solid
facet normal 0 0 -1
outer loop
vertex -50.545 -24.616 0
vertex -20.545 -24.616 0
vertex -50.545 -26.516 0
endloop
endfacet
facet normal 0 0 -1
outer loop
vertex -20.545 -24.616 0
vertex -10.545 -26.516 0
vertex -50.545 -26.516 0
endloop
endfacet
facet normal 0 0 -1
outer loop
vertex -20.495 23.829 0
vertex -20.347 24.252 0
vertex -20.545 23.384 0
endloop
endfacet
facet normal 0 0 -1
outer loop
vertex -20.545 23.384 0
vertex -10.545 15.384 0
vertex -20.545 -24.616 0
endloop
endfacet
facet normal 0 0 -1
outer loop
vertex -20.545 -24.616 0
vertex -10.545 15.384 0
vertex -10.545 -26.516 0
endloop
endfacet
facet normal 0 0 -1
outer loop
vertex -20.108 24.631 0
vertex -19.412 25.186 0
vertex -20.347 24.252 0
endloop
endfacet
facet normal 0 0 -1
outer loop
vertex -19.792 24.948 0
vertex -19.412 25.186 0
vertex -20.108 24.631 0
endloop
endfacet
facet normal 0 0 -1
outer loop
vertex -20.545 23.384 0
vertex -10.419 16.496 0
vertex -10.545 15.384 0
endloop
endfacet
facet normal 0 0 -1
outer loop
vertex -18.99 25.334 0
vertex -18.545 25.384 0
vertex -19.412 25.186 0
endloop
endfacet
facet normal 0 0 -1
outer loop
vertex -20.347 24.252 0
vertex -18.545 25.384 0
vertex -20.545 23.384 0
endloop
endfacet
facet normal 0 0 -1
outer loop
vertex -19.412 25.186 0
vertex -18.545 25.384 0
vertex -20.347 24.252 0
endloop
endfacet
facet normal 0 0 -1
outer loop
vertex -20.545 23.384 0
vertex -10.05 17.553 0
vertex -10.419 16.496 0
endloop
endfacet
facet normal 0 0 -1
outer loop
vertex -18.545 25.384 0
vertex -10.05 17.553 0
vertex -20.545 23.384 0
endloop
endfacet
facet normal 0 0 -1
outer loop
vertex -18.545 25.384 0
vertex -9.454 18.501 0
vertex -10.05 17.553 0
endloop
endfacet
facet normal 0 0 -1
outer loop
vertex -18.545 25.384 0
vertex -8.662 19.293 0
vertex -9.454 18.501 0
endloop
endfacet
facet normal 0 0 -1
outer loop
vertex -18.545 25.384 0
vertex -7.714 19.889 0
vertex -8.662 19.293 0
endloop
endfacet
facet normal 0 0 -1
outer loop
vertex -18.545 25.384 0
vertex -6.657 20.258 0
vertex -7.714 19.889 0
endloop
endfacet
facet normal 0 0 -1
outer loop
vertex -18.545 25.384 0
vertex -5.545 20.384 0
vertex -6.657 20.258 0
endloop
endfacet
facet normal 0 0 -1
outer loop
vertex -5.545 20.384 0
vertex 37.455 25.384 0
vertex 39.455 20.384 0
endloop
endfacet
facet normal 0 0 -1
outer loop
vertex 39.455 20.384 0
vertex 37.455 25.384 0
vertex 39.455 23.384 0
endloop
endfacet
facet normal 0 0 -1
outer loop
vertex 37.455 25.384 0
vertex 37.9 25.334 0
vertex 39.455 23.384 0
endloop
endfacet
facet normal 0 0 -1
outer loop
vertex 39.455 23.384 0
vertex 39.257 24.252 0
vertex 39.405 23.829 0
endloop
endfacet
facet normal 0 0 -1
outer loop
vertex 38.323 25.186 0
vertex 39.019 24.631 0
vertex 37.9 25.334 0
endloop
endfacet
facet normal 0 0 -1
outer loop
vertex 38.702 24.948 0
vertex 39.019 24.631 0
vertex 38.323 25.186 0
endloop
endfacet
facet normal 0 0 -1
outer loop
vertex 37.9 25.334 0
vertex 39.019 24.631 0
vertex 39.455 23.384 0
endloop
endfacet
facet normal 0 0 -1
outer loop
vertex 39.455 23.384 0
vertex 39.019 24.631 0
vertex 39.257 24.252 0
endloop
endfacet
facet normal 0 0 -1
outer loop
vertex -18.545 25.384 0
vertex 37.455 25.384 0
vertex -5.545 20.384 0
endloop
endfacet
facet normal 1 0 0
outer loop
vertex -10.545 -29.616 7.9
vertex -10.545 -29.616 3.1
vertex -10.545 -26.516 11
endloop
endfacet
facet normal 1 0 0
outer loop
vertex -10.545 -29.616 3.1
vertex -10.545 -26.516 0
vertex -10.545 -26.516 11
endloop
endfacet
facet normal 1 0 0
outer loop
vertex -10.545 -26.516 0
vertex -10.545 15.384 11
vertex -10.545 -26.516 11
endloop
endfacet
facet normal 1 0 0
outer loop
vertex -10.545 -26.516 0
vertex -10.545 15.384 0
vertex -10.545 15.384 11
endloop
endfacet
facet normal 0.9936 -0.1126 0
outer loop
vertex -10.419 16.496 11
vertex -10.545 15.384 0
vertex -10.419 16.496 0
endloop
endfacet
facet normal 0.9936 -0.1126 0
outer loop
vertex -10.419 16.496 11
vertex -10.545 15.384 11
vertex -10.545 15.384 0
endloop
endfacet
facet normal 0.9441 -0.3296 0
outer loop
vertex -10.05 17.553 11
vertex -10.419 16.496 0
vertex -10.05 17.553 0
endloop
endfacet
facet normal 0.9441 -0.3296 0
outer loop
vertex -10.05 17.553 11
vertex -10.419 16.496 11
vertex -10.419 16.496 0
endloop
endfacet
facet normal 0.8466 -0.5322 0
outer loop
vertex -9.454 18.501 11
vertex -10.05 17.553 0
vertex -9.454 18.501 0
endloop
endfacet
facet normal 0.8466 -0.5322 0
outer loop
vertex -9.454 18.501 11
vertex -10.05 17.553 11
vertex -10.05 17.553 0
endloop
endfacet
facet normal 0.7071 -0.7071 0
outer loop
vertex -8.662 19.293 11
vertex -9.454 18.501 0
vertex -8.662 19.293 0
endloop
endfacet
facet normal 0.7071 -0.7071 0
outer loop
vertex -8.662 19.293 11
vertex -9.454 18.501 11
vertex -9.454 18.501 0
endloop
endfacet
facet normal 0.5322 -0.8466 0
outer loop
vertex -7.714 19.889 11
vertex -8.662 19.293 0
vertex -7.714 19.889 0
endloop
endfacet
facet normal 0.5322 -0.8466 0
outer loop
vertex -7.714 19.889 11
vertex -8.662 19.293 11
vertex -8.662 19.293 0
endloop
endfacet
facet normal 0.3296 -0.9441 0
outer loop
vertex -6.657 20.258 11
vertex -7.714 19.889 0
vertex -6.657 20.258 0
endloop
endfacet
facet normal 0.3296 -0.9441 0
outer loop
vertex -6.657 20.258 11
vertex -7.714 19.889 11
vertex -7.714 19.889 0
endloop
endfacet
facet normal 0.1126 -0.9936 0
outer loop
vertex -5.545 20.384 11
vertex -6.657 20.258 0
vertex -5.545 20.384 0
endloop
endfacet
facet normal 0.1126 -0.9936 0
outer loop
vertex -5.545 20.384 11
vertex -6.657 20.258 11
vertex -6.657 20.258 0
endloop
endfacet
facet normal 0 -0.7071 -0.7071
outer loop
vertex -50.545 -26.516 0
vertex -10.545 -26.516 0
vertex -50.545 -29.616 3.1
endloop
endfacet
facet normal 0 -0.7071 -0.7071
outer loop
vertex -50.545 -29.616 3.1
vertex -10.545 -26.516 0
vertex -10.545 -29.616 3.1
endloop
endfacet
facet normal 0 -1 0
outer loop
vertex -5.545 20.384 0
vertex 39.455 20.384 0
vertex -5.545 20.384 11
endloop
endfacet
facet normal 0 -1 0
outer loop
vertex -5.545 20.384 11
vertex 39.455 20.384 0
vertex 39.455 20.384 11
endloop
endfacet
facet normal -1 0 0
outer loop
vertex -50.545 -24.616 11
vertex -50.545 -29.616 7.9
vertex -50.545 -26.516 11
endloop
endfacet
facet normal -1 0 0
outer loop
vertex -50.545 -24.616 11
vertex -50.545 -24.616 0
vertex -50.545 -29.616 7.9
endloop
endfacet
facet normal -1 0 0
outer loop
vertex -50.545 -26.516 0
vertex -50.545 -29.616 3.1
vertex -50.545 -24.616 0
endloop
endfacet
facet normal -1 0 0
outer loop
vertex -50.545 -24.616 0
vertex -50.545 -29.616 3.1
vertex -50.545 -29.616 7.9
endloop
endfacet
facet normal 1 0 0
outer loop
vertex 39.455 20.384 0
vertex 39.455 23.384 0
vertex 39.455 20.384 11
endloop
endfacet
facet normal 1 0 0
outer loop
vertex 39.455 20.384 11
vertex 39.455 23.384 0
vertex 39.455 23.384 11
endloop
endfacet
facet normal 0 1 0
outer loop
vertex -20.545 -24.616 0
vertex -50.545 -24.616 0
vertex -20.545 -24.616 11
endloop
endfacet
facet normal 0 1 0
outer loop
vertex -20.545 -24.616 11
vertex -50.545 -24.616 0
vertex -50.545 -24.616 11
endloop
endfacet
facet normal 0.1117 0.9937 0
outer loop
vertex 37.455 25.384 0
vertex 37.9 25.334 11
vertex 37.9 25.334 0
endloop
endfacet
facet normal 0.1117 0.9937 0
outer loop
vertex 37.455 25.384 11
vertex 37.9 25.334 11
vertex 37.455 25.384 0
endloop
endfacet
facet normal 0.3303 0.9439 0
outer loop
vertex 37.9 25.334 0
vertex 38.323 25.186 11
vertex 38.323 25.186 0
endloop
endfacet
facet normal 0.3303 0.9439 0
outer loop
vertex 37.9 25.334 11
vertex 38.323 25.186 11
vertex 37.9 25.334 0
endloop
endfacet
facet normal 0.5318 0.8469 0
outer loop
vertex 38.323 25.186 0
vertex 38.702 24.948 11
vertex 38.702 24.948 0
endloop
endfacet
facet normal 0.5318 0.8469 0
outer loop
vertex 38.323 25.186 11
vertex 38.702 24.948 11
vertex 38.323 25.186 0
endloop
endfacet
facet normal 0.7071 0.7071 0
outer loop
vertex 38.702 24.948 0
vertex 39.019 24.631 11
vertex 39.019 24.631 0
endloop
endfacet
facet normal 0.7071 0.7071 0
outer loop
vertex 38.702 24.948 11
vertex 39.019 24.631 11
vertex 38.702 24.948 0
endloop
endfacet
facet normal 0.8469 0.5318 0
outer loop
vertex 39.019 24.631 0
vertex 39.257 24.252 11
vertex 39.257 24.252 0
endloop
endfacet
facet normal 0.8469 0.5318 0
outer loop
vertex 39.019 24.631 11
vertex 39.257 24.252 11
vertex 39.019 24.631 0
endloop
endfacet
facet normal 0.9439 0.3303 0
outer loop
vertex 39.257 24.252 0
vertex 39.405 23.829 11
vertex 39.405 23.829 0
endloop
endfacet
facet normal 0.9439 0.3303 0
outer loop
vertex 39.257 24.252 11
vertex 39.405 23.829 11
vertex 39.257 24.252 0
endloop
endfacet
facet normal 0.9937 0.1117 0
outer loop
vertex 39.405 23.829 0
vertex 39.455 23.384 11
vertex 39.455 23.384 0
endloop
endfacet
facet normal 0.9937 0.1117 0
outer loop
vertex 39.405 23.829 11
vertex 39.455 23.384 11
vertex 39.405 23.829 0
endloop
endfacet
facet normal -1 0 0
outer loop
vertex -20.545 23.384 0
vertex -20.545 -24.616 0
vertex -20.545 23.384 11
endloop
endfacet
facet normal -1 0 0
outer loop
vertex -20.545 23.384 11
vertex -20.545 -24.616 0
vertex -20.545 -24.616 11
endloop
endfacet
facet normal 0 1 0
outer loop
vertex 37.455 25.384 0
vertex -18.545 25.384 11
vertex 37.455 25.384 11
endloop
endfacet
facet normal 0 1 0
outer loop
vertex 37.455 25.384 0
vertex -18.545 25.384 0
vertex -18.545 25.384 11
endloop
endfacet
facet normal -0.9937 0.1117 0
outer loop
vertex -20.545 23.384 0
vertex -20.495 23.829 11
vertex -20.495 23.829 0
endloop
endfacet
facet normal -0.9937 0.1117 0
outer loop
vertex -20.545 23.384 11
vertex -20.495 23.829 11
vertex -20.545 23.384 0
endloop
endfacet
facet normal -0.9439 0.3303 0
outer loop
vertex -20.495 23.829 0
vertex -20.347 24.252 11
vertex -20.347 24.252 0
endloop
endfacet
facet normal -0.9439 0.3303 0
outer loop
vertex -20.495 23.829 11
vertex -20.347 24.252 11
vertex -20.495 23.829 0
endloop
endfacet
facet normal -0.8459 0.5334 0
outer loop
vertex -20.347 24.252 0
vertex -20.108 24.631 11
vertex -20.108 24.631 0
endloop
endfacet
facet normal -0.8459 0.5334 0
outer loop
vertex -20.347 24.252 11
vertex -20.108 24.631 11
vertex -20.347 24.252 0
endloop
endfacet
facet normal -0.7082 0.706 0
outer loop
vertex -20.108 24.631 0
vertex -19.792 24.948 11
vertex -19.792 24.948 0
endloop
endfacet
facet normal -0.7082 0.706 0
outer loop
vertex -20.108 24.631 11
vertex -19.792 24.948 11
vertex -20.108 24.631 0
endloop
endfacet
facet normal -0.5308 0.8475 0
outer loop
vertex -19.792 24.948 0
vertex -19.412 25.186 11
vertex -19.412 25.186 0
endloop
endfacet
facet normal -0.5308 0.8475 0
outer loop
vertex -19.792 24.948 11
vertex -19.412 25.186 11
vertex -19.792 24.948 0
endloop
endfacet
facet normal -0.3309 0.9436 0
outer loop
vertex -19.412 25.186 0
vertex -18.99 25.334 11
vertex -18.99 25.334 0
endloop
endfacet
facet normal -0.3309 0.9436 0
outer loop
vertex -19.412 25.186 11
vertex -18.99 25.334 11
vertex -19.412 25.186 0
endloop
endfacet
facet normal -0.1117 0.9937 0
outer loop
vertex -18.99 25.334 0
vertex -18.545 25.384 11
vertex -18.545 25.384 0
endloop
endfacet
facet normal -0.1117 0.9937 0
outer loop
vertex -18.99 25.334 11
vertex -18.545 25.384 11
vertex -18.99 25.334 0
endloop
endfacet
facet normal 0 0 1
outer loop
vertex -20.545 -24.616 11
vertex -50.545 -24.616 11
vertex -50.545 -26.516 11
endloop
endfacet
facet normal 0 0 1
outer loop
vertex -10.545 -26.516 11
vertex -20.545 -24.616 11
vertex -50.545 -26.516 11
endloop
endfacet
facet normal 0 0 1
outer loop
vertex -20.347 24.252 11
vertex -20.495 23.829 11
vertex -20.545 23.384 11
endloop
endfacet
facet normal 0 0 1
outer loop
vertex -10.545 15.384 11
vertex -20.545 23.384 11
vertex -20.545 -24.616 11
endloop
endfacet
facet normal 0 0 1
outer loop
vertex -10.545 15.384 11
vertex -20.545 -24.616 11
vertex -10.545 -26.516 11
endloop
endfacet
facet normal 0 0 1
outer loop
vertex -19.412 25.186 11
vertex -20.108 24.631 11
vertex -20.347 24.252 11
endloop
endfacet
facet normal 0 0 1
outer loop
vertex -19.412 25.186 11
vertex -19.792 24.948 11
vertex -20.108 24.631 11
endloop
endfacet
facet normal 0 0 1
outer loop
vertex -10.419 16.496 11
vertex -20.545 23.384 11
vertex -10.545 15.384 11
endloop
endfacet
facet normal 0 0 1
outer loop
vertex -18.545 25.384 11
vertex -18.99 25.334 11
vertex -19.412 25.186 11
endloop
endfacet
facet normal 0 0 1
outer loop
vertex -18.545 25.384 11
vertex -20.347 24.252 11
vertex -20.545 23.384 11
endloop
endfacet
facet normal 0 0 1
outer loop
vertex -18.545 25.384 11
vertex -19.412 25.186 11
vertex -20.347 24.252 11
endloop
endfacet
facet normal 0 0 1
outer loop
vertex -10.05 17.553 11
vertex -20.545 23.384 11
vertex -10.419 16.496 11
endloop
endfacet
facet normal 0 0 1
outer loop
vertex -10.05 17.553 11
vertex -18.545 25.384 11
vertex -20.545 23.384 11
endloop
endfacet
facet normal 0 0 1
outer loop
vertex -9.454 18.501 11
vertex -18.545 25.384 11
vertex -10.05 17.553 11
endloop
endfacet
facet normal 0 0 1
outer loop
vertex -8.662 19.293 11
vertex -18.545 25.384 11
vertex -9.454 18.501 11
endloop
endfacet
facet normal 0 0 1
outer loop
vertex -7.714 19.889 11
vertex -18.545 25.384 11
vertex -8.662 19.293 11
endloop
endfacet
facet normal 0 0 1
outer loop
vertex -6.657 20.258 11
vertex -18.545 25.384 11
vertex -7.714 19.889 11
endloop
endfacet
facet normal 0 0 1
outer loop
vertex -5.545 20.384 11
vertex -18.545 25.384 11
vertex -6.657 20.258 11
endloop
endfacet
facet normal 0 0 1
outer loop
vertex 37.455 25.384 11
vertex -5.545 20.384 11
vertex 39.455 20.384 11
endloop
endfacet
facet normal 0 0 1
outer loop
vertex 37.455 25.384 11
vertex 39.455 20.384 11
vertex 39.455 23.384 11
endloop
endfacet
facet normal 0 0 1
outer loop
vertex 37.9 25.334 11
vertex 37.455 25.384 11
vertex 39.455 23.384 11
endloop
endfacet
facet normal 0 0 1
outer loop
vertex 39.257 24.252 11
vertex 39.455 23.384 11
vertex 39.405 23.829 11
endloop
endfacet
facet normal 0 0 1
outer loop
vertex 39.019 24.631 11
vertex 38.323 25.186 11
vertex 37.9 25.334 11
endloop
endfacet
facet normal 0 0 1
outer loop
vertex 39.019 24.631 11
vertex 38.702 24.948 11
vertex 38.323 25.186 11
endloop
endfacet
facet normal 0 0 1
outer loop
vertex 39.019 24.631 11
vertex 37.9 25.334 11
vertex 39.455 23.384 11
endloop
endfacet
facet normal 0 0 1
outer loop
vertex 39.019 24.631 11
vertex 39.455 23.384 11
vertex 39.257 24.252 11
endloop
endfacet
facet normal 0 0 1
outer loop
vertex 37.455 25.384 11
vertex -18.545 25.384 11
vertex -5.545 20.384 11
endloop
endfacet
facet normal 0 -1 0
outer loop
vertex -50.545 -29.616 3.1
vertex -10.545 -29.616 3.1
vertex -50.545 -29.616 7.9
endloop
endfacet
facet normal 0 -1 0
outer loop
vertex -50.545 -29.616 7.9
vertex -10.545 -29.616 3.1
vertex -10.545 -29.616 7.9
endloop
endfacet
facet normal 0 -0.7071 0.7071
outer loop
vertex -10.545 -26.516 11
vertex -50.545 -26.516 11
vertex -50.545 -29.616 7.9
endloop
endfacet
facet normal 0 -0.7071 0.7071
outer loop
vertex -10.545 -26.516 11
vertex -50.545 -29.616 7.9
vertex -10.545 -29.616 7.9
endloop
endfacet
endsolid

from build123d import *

# Parameters (mm, degrees)
PAD_DEPTH    = 11
CHAMFER_SIZE = 3.1
FILLET_R     = 2
FILLET001_R  = 5


with BuildPart() as part:
    # Sketch → Pad (new body)
    with BuildSketch(Plane.XY):
        Polygon((-50.544724, -24.61614), (-50.544724, -29.61614), (-10.544724, -29.61614), (-10.544724, 20.38386), (39.455276, 20.38386), (39.455276, 25.38386), (-20.544724, 25.38386), (-20.544724, -24.61614), align=None)
    extrude(amount=PAD_DEPTH)

    # Chamfer
    chamfer_edges = [part.edges().sort_by_distance(p)[0] for p in [
        (-30.544724, -29.61614, 0),
        (-30.544724, -29.61614, 11),
    ]]
    chamfer(chamfer_edges, length=CHAMFER_SIZE)

    # Fillet
    fillet_edges = [part.edges().sort_by_distance(p)[0] for p in [
        (39.455276, 25.38386, 5.5),
        (-20.544724, 25.38386, 5.5),
    ]]
    fillet(fillet_edges, radius=FILLET_R)

    # Fillet001
    fillet001_edges = [part.edges().sort_by_distance(p)[0] for p in [
        (-10.544724, 20.38386, 5.5),
    ]]
    fillet(fillet001_edges, radius=FILLET001_R)


solid = part.part
